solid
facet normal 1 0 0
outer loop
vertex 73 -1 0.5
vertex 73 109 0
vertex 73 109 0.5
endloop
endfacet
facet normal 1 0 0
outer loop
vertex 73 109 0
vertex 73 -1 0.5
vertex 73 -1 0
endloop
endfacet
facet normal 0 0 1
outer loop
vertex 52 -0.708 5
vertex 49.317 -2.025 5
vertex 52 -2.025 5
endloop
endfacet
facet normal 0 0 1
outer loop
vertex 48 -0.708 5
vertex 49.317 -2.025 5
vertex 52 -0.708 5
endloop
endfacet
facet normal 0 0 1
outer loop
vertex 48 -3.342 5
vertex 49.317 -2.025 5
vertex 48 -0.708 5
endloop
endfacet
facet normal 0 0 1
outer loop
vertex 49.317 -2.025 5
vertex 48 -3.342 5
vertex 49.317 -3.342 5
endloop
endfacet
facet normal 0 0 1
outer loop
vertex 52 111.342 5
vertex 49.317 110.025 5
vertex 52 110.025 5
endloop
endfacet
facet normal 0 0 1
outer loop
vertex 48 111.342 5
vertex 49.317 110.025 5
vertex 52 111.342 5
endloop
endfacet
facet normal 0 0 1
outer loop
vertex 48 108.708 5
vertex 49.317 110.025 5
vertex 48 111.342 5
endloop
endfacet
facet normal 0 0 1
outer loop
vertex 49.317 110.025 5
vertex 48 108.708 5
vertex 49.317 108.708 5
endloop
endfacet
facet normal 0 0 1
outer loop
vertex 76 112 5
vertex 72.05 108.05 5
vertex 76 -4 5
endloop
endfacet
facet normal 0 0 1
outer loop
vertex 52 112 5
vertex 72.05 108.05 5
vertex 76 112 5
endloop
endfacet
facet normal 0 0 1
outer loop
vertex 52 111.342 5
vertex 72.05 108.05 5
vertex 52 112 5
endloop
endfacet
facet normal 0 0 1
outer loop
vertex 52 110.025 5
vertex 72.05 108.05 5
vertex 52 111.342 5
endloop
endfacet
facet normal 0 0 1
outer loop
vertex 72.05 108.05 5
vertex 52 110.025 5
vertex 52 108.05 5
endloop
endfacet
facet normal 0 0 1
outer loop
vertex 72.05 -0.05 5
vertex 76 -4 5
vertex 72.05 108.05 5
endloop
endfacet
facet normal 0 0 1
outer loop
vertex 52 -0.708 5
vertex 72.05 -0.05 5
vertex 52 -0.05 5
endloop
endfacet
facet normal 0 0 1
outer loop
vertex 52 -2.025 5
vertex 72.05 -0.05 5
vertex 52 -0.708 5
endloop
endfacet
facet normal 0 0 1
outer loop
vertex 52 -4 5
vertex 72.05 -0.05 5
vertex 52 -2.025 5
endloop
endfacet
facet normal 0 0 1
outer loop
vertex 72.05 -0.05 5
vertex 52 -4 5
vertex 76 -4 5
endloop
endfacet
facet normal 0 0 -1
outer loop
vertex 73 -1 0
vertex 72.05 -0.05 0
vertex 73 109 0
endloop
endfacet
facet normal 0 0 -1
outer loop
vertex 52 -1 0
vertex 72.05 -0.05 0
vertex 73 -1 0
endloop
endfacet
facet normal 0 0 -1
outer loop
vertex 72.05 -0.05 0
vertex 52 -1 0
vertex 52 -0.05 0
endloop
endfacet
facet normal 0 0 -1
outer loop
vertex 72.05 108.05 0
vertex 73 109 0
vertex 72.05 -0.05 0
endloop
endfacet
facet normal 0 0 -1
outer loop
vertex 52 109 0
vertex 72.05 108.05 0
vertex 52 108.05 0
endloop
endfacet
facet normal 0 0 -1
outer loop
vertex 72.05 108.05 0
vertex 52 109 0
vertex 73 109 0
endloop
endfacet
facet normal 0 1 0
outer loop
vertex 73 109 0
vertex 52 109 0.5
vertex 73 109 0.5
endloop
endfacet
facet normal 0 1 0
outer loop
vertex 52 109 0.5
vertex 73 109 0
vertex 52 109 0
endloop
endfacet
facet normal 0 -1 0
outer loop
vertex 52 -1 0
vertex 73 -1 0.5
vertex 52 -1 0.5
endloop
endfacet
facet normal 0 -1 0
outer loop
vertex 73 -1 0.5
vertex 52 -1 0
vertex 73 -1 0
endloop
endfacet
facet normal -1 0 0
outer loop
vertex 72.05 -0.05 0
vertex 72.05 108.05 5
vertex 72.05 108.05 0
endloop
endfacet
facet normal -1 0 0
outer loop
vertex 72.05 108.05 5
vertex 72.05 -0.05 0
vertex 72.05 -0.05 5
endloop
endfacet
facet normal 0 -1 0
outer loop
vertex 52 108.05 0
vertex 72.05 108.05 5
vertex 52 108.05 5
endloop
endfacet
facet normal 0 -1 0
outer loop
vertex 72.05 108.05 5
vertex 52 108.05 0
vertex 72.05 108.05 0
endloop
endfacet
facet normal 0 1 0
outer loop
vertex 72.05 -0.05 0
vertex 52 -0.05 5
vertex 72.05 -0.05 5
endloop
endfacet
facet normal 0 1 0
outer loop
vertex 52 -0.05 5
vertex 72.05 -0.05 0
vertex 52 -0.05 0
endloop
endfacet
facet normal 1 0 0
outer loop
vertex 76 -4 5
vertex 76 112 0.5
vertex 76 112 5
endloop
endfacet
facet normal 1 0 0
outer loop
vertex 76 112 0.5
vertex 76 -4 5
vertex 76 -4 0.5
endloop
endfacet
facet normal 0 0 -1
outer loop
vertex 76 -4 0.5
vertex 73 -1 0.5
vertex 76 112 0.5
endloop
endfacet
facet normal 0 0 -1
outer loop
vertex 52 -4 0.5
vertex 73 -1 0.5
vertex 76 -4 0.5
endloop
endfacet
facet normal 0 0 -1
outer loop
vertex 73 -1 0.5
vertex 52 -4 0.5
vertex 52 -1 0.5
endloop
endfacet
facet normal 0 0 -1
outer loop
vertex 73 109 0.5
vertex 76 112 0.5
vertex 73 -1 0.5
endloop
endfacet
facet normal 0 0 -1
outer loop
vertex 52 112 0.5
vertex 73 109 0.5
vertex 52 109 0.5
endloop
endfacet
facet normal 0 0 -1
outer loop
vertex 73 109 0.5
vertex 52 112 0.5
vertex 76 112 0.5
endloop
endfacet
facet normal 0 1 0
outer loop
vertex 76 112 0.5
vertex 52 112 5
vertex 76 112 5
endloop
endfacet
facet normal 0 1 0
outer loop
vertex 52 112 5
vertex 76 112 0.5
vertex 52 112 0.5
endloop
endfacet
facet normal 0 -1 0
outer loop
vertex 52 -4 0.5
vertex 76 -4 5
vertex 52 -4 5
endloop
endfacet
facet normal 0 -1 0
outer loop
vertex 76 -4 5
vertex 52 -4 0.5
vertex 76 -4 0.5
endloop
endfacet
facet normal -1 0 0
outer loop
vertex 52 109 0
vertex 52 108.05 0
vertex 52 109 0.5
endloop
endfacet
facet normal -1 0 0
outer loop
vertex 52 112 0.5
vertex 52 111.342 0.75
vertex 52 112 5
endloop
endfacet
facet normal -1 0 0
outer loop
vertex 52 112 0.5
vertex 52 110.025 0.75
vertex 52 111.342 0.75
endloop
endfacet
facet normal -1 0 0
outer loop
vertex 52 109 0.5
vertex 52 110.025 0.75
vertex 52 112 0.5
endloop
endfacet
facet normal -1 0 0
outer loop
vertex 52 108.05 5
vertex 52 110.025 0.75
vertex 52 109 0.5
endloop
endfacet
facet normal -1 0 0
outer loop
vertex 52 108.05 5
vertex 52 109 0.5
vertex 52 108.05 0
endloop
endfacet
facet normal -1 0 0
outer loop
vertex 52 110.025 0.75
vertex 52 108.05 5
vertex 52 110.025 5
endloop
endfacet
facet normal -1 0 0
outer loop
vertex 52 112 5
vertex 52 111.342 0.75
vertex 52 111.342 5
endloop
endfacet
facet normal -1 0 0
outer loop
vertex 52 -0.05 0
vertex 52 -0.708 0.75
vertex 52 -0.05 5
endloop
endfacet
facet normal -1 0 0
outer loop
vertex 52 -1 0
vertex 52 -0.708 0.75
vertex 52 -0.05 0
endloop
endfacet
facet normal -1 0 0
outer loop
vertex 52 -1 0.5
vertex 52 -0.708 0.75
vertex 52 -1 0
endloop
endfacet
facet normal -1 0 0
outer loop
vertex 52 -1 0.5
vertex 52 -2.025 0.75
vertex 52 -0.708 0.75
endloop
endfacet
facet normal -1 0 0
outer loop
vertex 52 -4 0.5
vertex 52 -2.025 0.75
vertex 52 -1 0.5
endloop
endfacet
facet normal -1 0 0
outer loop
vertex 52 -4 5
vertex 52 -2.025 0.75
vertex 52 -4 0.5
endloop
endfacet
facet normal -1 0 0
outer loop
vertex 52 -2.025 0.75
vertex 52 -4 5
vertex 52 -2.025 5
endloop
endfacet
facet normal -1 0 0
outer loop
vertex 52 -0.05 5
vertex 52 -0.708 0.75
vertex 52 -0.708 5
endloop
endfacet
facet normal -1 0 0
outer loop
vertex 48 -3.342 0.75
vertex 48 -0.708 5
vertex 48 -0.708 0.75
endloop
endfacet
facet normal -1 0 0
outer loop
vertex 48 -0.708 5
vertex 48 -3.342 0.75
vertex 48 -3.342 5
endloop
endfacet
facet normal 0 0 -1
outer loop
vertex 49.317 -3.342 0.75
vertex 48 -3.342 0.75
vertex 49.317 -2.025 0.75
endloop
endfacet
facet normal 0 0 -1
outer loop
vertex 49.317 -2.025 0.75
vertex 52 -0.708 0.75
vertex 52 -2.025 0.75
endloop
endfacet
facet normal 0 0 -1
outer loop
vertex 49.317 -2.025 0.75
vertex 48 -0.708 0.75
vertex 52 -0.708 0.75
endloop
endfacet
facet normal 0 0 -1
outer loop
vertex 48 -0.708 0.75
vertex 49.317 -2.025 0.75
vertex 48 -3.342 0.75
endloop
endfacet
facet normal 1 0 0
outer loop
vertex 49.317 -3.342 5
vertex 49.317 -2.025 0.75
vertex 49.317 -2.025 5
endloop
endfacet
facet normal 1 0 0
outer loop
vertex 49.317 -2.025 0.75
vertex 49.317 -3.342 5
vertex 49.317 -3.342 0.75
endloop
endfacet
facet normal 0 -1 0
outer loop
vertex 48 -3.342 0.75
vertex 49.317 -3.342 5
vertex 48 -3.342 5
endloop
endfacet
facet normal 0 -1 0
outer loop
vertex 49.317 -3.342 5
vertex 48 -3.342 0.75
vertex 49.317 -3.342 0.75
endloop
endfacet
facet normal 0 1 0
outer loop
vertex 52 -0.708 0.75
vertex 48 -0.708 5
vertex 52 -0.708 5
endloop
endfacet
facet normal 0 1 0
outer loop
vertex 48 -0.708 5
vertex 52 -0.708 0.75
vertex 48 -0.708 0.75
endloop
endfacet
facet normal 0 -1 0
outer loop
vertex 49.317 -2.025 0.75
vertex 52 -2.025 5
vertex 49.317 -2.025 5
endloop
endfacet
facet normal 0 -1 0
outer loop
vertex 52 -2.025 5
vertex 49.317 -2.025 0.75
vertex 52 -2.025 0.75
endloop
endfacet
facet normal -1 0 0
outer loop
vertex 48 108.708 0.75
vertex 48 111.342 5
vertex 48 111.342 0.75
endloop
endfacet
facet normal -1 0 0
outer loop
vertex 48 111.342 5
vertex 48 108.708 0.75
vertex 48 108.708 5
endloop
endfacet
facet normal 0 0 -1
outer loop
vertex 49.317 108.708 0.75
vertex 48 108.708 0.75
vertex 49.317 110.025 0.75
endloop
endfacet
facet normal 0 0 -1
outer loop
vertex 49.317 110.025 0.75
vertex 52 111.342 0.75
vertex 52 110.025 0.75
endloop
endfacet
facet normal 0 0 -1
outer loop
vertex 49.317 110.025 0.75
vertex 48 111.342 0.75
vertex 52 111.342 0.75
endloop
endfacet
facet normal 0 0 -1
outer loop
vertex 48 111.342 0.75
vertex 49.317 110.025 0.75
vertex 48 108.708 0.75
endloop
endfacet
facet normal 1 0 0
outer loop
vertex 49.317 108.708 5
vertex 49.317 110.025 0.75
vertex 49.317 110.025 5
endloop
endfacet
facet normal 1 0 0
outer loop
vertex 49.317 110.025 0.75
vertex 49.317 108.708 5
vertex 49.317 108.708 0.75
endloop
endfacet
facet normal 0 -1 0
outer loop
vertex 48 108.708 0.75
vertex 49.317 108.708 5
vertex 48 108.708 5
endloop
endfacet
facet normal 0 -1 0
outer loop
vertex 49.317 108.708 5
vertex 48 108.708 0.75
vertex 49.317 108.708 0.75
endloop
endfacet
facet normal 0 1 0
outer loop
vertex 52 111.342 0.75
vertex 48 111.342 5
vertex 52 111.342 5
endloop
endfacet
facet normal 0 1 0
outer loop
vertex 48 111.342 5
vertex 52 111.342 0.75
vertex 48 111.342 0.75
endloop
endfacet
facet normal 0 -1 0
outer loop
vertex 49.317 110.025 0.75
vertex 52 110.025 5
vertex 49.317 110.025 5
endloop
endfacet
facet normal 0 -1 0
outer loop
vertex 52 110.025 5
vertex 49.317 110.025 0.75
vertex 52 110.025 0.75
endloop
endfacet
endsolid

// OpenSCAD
// Generated by SolidPython 1.0.4 on 2020-12-18 11:25:16


union() {
	union() {
		difference() {
			union() {
				difference() {
					translate(v = [-1.0000000000, -1.0000000000, 0]) {
						cube(size = [74.0000000000, 110.0000000000, 5]);
					}
					translate(v = [-0.0500000000, -0.0500000000, 0]) {
						cube(size = [72.1000000000, 108.1000000000, 5]);
					}
				}
				translate(v = [0, 0, 0.5000000000]) {
					difference() {
						translate(v = [-4.0000000000, -4.0000000000, 0]) {
							cube(size = [80.0000000000, 116.0000000000, 4.5000000000]);
						}
						translate(v = [-1.0000000000, -1.0000000000, 0]) {
							cube(size = [74.0000000000, 110.0000000000, 4.5000000000]);
						}
					}
				}
			}
			translate(v = [-4.0000000000, -4.0000000000, 0]) {
				cube(size = [56.0000000000, 116.0000000000, 5]);
			}
		}
		translate(v = [48.0000000000, -3.3416666667, 0]) {
			translate(v = [0, 0, 0.7500000000]) {
				scale(v = [1, 1, 1]) {
					translate(v = [4, 2.6333333333, 0]) {
						rotate(a = -180) {
							union() {
								translate(v = [2.6833333333, 0, 0]) {
									cube(size = [1.3166666667, 2.6333333333, 4.2500000000]);
								}
								cube(size = [4, 1.3166666667, 4.2500000000]);
							}
						}
					}
				}
			}
		}
	}
	translate(v = [48.0000000000, 108.7083333333, 0]) {
		translate(v = [0, 0, 0.7500000000]) {
			scale(v = [1, 1, 1]) {
				translate(v = [4, 2.6333333333, 0]) {
					rotate(a = -180) {
						union() {
							translate(v = [2.6833333333, 0, 0]) {
								cube(size = [1.3166666667, 2.6333333333, 4.2500000000]);
							}
							cube(size = [4, 1.3166666667, 4.2500000000]);
						}
					}
				}
			}
		}
	}
}
